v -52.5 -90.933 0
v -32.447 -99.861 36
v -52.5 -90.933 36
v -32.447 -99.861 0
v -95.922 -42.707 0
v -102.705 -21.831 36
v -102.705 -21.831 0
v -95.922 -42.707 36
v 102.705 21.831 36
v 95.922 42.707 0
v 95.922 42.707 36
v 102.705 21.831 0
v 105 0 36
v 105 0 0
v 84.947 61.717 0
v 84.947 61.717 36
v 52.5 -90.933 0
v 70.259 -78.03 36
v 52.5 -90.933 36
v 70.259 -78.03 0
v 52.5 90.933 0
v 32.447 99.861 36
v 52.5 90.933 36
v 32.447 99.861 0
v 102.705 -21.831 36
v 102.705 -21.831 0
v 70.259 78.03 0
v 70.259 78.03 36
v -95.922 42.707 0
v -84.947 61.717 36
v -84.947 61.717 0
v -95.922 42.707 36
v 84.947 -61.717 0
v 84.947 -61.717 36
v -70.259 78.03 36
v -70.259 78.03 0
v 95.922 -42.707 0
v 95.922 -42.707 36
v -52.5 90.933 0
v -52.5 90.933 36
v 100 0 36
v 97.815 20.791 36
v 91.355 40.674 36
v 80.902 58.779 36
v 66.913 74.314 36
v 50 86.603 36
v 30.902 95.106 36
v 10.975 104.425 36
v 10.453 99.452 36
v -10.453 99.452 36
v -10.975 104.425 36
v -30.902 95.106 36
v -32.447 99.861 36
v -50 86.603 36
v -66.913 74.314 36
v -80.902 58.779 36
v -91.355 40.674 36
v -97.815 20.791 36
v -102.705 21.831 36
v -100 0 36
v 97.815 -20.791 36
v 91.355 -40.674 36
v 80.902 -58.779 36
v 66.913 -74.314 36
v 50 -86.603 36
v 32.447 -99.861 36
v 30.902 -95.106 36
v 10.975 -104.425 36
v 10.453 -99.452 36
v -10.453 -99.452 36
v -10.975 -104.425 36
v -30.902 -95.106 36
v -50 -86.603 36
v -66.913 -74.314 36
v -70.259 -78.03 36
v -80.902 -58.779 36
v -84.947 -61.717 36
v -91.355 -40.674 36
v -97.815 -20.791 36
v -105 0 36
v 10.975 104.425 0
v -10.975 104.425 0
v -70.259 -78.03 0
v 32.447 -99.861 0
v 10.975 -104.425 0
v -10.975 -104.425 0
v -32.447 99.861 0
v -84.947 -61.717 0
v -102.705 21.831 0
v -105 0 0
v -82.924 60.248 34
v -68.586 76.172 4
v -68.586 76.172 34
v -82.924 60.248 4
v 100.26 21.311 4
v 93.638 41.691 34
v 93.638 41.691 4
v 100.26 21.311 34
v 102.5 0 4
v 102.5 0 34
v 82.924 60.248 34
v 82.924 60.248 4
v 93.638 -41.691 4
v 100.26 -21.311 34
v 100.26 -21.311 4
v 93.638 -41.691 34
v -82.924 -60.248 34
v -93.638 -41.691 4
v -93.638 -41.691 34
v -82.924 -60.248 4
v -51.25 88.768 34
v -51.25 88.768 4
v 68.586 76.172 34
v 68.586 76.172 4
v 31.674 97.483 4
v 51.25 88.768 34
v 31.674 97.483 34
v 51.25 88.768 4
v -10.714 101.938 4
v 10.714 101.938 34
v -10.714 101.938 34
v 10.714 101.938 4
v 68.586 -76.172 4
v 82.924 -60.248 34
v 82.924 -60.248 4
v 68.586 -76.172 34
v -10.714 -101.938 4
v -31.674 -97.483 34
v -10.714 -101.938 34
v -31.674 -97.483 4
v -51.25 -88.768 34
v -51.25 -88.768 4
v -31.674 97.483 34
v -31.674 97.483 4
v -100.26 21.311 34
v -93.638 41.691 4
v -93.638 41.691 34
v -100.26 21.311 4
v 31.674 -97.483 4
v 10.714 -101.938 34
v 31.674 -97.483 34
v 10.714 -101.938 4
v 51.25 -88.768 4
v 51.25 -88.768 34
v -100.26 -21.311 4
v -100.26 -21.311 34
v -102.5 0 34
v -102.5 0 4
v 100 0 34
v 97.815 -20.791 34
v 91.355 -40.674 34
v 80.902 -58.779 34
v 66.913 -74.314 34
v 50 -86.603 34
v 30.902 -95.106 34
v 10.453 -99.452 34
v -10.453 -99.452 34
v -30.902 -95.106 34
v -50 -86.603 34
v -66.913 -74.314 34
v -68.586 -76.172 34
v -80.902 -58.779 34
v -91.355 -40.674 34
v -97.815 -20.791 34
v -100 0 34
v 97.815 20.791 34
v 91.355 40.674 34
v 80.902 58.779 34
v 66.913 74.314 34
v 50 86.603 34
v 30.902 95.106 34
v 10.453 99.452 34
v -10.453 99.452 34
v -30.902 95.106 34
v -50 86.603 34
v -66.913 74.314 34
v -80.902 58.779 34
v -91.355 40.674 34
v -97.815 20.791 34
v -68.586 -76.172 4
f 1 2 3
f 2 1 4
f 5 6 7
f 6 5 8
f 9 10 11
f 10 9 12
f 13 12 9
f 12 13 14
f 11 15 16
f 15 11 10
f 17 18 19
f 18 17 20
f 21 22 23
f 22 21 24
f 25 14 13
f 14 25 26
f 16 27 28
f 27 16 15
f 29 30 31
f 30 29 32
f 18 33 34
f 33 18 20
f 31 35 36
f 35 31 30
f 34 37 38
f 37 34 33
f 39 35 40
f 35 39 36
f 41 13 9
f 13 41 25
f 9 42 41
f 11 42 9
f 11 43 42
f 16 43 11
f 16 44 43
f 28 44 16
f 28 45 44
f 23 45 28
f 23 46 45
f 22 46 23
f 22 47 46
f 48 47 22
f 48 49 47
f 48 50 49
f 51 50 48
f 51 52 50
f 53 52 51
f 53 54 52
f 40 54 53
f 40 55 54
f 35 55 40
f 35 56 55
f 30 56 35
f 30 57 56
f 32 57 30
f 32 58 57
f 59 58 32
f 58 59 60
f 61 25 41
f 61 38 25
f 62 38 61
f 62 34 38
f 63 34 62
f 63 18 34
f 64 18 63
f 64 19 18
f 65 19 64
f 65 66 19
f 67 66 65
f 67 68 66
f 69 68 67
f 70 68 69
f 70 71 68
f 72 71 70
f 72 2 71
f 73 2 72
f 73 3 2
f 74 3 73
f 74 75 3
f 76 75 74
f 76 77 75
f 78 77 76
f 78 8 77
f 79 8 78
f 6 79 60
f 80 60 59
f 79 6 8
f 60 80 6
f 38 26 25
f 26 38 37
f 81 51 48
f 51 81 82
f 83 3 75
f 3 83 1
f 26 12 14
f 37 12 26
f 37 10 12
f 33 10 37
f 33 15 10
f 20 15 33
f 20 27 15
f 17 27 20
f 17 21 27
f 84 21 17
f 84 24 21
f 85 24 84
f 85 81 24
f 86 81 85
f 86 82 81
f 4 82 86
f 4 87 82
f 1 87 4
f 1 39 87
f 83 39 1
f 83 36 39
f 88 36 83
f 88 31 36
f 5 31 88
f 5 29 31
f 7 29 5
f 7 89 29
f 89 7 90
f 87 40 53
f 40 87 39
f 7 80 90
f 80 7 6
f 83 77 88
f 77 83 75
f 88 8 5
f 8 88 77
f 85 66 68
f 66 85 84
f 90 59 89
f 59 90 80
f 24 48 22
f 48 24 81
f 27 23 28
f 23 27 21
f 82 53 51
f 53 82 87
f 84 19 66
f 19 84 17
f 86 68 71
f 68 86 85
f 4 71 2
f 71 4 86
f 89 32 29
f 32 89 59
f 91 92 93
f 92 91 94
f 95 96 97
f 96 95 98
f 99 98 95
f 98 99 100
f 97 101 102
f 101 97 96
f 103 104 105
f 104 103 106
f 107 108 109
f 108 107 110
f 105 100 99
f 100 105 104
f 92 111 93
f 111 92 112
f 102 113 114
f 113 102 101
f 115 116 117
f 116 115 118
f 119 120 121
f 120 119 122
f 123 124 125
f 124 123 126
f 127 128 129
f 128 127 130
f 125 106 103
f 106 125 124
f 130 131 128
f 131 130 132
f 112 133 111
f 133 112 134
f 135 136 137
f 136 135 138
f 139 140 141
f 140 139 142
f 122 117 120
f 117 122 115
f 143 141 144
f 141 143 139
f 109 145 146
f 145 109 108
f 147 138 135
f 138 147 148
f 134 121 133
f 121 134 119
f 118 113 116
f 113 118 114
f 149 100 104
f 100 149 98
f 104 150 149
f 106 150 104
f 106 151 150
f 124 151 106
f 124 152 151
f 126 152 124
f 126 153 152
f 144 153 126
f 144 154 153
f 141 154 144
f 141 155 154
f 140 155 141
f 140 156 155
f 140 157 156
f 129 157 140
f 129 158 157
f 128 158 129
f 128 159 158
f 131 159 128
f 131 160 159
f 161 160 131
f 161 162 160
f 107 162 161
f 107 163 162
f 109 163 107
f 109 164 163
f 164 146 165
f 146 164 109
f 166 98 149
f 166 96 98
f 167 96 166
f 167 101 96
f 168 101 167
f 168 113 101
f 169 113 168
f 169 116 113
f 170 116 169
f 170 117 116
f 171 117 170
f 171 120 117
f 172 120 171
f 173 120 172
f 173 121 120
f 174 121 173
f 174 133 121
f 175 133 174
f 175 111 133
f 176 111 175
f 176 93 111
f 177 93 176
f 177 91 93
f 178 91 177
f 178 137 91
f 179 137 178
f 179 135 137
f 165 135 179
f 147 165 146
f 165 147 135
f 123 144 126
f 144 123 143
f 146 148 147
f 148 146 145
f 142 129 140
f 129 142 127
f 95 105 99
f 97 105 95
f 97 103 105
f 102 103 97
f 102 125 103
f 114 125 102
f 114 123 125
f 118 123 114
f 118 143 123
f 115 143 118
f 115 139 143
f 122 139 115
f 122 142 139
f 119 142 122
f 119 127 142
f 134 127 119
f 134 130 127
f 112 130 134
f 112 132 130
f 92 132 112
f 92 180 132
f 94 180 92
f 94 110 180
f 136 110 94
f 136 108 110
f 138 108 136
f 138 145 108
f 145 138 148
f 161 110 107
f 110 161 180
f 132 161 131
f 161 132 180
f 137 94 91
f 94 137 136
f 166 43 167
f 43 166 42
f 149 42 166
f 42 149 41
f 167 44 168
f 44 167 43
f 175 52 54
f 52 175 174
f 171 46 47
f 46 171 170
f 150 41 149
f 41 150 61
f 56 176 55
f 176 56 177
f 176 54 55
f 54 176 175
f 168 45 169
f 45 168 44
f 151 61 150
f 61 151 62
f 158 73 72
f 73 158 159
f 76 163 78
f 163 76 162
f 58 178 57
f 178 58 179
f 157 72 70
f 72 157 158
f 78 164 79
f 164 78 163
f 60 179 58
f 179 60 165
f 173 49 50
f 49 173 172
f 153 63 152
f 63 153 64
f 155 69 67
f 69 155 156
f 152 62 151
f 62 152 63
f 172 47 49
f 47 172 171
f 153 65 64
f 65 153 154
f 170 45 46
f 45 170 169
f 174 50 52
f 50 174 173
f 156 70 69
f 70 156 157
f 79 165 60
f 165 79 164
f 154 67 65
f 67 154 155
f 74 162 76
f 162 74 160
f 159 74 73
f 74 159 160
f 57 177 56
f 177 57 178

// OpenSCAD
difference() {
    cylinder(h = 36, d = 210);
    translate([0, 0, 4]) {
    cylinder(h = 30, d = 205);
    };
    translate([0, 0, 4]) {
        cylinder(h = 34, d = 200);
    };
};

/* Holds strips of cardboard cut to 3cm in width. 

Original Dimensions: 
- Full height: 36mm
- Full diameter: 215mm
- Interior space
	- Height: 30mm
	- Diameter: 210mm
- Lip
	- 2mm height
	- 5mm width

Adjusted for Ender 3:
- Full height: 36mm
- Full diameter: 210mm
- Interior space
	- Height: 30mm
	- Diameter: 205mm
- Lip
	- 2mm height
	- 5mm width
*/
